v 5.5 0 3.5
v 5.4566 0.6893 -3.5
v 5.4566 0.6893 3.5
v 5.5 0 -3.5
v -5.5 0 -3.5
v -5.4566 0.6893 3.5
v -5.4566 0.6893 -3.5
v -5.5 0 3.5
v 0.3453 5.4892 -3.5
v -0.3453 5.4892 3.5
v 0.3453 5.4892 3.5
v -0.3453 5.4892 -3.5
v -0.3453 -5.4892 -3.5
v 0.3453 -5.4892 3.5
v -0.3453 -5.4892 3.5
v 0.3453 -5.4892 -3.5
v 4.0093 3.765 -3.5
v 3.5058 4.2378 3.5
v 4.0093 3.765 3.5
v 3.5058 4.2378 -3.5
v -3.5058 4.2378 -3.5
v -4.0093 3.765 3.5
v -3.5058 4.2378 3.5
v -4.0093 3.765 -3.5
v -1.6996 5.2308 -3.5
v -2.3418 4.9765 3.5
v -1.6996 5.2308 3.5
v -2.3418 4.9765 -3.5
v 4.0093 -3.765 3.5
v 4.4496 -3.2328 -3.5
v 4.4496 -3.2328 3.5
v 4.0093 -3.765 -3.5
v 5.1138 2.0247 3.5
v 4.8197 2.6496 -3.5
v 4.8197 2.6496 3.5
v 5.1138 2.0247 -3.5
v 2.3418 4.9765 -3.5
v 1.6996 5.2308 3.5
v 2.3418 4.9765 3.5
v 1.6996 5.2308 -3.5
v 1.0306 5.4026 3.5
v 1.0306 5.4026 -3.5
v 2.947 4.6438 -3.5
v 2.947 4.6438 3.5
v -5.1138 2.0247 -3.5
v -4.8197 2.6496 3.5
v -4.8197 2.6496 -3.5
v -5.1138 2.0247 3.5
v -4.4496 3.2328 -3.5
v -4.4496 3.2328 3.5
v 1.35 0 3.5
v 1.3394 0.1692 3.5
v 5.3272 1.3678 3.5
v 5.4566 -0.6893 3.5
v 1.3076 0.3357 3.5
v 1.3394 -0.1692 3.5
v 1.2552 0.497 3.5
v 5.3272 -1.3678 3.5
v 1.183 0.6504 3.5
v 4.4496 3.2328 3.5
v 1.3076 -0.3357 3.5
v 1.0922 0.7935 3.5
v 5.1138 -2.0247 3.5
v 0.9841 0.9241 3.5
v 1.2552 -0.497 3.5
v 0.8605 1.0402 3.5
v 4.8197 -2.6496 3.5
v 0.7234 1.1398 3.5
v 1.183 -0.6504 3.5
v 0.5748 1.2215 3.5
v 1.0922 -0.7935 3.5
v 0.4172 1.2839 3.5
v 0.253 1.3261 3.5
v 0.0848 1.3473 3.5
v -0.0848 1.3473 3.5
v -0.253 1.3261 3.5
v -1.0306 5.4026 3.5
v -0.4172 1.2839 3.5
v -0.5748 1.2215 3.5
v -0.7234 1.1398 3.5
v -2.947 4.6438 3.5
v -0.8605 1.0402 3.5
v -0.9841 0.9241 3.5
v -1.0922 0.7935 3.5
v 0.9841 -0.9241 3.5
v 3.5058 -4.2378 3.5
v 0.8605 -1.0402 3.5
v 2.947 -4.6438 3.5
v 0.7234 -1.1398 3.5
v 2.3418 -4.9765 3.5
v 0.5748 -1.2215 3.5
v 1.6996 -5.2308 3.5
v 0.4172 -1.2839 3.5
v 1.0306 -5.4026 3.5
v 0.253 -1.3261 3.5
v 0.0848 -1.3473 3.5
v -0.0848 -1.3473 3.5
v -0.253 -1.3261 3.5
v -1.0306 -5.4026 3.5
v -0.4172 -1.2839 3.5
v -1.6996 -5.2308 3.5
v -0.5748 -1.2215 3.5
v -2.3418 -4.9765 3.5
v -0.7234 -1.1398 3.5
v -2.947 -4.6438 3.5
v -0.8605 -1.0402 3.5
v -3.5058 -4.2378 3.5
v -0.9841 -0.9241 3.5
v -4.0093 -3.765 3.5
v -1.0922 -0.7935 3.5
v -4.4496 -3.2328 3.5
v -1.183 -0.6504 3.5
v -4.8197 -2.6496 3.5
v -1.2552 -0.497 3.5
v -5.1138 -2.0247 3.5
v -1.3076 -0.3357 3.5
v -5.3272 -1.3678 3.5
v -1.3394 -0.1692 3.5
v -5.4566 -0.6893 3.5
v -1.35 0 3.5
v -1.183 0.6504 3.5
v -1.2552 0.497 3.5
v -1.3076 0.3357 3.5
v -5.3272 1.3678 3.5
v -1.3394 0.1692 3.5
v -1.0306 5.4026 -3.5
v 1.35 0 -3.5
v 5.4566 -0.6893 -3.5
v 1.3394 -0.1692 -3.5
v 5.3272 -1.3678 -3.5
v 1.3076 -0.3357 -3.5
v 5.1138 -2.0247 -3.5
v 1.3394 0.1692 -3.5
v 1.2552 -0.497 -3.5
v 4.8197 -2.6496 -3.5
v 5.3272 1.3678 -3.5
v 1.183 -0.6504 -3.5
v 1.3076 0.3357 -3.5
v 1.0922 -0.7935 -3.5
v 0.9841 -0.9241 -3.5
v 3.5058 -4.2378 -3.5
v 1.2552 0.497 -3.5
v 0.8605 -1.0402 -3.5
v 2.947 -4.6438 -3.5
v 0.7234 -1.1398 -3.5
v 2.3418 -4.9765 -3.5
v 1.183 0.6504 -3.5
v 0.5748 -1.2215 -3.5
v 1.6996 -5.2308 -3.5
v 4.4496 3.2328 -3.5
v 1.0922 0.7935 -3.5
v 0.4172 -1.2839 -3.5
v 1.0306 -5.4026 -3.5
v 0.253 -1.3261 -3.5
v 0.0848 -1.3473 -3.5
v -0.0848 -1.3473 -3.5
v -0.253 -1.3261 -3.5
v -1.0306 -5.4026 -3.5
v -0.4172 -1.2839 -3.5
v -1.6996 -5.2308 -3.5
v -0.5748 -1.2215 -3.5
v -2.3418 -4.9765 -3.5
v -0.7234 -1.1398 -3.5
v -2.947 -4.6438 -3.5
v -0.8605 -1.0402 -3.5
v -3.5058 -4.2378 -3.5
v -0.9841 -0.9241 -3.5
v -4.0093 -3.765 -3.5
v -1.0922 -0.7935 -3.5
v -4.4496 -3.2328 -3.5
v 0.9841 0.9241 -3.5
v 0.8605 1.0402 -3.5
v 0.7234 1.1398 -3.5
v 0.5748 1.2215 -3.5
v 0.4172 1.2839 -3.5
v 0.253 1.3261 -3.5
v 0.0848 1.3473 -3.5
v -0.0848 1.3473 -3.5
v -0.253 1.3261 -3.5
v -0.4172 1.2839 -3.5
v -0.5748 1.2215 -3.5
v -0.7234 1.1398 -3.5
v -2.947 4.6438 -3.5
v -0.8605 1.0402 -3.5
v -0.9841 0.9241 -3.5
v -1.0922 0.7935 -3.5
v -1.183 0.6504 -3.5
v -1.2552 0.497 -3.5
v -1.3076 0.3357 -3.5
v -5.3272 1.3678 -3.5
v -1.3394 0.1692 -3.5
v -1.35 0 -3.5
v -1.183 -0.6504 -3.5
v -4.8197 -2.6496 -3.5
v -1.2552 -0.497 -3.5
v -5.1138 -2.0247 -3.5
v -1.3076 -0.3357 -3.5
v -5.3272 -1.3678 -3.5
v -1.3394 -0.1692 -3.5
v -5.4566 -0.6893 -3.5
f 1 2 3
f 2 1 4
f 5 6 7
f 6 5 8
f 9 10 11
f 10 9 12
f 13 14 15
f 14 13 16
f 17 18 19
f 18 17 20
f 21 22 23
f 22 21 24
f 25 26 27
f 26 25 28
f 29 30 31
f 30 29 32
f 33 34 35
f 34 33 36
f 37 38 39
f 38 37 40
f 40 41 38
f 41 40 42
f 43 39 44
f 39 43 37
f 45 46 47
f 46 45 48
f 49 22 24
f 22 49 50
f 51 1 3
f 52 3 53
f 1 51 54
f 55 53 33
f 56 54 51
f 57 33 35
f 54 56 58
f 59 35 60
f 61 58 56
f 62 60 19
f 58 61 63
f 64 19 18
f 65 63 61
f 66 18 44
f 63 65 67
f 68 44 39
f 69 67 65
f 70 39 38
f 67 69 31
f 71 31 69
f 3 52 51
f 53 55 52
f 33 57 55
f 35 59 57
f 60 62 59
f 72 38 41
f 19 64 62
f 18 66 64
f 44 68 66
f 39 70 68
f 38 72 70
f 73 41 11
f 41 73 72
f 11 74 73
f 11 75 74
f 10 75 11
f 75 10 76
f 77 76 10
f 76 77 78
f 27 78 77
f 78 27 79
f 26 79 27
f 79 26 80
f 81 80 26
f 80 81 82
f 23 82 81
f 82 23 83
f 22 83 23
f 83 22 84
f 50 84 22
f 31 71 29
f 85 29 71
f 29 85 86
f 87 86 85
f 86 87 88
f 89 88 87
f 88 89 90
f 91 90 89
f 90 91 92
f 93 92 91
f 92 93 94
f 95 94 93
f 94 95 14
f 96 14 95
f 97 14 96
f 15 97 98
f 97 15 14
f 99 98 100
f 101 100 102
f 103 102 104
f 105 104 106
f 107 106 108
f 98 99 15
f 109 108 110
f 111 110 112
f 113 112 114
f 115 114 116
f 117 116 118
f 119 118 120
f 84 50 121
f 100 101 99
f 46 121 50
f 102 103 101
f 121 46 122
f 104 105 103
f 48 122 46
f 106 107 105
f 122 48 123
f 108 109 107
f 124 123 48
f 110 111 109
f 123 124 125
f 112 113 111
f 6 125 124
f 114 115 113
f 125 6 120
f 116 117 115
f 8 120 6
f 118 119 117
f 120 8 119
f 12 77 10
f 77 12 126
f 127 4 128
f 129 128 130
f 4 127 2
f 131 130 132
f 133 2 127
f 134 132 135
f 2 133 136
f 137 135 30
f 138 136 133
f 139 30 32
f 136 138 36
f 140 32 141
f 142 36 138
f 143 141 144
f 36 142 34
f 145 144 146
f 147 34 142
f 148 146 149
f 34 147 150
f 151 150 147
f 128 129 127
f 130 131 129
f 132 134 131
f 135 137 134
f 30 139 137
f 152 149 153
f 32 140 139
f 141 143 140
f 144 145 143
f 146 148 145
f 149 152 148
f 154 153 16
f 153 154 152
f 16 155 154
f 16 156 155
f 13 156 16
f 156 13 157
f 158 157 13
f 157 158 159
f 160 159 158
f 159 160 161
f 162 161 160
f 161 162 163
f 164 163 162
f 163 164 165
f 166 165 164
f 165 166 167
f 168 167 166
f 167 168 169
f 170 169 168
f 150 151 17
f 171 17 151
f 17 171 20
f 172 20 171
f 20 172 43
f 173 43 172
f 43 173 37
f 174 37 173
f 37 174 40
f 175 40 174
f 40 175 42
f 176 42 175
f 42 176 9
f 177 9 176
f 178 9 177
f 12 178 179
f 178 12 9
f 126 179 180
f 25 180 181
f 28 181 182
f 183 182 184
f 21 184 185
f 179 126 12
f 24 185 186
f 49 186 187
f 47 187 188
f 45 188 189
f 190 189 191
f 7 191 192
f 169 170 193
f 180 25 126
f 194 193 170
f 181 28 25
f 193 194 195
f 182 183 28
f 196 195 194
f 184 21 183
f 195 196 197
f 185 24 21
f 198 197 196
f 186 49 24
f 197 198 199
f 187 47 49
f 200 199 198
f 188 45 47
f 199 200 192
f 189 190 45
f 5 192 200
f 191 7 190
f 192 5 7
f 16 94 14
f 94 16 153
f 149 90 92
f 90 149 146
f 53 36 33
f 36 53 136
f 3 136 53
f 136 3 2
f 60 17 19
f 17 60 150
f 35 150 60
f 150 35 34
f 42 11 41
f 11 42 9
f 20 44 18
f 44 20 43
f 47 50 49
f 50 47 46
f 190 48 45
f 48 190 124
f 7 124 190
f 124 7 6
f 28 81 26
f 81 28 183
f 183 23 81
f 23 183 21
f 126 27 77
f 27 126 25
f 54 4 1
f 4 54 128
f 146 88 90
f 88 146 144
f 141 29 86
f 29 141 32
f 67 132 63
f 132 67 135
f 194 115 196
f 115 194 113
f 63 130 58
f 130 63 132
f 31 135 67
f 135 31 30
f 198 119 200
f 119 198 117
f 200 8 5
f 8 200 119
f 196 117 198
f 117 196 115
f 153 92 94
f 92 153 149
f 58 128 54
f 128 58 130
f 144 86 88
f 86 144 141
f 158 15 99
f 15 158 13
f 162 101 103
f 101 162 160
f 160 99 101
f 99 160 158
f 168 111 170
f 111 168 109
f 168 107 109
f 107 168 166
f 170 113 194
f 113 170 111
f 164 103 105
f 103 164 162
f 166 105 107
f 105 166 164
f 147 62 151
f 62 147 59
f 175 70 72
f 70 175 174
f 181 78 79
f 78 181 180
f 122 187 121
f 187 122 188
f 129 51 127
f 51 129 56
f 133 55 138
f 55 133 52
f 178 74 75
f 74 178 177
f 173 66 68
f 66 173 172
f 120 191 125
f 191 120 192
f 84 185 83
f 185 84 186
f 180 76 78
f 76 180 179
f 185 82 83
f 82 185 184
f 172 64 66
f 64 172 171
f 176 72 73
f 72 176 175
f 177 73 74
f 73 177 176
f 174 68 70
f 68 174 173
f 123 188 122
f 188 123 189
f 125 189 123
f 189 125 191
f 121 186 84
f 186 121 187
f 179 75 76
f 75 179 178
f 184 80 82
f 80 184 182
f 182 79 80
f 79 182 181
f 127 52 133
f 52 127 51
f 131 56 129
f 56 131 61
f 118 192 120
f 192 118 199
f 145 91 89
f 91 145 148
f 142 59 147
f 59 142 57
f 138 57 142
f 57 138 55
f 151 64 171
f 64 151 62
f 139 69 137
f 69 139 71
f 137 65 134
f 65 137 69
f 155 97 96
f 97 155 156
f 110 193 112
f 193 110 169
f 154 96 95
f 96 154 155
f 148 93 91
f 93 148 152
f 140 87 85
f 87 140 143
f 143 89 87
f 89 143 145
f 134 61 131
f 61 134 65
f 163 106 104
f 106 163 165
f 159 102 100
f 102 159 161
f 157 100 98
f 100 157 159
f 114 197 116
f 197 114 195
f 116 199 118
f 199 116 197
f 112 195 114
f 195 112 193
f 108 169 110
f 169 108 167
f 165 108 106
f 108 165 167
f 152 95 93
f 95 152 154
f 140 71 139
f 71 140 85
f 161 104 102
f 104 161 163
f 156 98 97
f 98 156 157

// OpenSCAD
$fn = 50;


difference() {
	union() {
		translate(v = [0, 0, -3.5000000000]) {
			cylinder(h = 7, r = 5.5000000000);
		}
	}
	union() {
		translate(v = [0, 0, -100.0000000000]) {
			cylinder(h = 200, r = 1.3500000000);
		}
	}
}
